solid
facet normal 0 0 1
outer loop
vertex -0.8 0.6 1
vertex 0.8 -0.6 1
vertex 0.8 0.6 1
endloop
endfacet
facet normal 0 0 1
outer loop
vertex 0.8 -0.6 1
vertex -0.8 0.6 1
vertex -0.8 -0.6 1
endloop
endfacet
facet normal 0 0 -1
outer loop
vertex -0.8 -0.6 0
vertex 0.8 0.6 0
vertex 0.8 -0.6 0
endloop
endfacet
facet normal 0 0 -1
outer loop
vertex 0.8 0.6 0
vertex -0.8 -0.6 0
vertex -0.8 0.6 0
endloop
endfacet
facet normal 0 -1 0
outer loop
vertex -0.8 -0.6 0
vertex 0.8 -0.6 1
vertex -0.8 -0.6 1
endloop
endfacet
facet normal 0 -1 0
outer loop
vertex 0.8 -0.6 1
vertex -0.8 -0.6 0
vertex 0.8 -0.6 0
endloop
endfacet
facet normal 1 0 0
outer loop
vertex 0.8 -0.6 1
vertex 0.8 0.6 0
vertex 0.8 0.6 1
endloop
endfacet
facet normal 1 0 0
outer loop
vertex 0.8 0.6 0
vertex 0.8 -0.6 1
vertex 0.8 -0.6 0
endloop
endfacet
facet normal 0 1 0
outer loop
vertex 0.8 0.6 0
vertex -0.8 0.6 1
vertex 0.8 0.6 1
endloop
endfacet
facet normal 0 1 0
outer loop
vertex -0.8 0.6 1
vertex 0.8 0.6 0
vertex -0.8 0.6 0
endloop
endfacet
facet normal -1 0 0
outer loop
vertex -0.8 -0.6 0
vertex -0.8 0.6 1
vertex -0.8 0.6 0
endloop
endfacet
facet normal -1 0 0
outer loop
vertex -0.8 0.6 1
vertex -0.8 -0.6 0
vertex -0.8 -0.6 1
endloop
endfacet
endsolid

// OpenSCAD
translate([0, 0, 0.5]) 
  cube([1.6, 1.2, 1], center = true);
